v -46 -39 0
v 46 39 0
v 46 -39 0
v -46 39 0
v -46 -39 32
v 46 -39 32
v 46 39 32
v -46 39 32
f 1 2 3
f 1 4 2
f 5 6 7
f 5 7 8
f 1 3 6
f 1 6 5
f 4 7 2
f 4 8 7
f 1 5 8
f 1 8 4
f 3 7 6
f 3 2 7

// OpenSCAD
// Gemini 4 Argon Parametric OpenSCAD — PRT-03: Fine-Pitch Dovetail Z-Focus & XY Slide Stage
$fn = 64;
translate([-46.00, -39.00, 0])
  cube([92, 78, 32]);
